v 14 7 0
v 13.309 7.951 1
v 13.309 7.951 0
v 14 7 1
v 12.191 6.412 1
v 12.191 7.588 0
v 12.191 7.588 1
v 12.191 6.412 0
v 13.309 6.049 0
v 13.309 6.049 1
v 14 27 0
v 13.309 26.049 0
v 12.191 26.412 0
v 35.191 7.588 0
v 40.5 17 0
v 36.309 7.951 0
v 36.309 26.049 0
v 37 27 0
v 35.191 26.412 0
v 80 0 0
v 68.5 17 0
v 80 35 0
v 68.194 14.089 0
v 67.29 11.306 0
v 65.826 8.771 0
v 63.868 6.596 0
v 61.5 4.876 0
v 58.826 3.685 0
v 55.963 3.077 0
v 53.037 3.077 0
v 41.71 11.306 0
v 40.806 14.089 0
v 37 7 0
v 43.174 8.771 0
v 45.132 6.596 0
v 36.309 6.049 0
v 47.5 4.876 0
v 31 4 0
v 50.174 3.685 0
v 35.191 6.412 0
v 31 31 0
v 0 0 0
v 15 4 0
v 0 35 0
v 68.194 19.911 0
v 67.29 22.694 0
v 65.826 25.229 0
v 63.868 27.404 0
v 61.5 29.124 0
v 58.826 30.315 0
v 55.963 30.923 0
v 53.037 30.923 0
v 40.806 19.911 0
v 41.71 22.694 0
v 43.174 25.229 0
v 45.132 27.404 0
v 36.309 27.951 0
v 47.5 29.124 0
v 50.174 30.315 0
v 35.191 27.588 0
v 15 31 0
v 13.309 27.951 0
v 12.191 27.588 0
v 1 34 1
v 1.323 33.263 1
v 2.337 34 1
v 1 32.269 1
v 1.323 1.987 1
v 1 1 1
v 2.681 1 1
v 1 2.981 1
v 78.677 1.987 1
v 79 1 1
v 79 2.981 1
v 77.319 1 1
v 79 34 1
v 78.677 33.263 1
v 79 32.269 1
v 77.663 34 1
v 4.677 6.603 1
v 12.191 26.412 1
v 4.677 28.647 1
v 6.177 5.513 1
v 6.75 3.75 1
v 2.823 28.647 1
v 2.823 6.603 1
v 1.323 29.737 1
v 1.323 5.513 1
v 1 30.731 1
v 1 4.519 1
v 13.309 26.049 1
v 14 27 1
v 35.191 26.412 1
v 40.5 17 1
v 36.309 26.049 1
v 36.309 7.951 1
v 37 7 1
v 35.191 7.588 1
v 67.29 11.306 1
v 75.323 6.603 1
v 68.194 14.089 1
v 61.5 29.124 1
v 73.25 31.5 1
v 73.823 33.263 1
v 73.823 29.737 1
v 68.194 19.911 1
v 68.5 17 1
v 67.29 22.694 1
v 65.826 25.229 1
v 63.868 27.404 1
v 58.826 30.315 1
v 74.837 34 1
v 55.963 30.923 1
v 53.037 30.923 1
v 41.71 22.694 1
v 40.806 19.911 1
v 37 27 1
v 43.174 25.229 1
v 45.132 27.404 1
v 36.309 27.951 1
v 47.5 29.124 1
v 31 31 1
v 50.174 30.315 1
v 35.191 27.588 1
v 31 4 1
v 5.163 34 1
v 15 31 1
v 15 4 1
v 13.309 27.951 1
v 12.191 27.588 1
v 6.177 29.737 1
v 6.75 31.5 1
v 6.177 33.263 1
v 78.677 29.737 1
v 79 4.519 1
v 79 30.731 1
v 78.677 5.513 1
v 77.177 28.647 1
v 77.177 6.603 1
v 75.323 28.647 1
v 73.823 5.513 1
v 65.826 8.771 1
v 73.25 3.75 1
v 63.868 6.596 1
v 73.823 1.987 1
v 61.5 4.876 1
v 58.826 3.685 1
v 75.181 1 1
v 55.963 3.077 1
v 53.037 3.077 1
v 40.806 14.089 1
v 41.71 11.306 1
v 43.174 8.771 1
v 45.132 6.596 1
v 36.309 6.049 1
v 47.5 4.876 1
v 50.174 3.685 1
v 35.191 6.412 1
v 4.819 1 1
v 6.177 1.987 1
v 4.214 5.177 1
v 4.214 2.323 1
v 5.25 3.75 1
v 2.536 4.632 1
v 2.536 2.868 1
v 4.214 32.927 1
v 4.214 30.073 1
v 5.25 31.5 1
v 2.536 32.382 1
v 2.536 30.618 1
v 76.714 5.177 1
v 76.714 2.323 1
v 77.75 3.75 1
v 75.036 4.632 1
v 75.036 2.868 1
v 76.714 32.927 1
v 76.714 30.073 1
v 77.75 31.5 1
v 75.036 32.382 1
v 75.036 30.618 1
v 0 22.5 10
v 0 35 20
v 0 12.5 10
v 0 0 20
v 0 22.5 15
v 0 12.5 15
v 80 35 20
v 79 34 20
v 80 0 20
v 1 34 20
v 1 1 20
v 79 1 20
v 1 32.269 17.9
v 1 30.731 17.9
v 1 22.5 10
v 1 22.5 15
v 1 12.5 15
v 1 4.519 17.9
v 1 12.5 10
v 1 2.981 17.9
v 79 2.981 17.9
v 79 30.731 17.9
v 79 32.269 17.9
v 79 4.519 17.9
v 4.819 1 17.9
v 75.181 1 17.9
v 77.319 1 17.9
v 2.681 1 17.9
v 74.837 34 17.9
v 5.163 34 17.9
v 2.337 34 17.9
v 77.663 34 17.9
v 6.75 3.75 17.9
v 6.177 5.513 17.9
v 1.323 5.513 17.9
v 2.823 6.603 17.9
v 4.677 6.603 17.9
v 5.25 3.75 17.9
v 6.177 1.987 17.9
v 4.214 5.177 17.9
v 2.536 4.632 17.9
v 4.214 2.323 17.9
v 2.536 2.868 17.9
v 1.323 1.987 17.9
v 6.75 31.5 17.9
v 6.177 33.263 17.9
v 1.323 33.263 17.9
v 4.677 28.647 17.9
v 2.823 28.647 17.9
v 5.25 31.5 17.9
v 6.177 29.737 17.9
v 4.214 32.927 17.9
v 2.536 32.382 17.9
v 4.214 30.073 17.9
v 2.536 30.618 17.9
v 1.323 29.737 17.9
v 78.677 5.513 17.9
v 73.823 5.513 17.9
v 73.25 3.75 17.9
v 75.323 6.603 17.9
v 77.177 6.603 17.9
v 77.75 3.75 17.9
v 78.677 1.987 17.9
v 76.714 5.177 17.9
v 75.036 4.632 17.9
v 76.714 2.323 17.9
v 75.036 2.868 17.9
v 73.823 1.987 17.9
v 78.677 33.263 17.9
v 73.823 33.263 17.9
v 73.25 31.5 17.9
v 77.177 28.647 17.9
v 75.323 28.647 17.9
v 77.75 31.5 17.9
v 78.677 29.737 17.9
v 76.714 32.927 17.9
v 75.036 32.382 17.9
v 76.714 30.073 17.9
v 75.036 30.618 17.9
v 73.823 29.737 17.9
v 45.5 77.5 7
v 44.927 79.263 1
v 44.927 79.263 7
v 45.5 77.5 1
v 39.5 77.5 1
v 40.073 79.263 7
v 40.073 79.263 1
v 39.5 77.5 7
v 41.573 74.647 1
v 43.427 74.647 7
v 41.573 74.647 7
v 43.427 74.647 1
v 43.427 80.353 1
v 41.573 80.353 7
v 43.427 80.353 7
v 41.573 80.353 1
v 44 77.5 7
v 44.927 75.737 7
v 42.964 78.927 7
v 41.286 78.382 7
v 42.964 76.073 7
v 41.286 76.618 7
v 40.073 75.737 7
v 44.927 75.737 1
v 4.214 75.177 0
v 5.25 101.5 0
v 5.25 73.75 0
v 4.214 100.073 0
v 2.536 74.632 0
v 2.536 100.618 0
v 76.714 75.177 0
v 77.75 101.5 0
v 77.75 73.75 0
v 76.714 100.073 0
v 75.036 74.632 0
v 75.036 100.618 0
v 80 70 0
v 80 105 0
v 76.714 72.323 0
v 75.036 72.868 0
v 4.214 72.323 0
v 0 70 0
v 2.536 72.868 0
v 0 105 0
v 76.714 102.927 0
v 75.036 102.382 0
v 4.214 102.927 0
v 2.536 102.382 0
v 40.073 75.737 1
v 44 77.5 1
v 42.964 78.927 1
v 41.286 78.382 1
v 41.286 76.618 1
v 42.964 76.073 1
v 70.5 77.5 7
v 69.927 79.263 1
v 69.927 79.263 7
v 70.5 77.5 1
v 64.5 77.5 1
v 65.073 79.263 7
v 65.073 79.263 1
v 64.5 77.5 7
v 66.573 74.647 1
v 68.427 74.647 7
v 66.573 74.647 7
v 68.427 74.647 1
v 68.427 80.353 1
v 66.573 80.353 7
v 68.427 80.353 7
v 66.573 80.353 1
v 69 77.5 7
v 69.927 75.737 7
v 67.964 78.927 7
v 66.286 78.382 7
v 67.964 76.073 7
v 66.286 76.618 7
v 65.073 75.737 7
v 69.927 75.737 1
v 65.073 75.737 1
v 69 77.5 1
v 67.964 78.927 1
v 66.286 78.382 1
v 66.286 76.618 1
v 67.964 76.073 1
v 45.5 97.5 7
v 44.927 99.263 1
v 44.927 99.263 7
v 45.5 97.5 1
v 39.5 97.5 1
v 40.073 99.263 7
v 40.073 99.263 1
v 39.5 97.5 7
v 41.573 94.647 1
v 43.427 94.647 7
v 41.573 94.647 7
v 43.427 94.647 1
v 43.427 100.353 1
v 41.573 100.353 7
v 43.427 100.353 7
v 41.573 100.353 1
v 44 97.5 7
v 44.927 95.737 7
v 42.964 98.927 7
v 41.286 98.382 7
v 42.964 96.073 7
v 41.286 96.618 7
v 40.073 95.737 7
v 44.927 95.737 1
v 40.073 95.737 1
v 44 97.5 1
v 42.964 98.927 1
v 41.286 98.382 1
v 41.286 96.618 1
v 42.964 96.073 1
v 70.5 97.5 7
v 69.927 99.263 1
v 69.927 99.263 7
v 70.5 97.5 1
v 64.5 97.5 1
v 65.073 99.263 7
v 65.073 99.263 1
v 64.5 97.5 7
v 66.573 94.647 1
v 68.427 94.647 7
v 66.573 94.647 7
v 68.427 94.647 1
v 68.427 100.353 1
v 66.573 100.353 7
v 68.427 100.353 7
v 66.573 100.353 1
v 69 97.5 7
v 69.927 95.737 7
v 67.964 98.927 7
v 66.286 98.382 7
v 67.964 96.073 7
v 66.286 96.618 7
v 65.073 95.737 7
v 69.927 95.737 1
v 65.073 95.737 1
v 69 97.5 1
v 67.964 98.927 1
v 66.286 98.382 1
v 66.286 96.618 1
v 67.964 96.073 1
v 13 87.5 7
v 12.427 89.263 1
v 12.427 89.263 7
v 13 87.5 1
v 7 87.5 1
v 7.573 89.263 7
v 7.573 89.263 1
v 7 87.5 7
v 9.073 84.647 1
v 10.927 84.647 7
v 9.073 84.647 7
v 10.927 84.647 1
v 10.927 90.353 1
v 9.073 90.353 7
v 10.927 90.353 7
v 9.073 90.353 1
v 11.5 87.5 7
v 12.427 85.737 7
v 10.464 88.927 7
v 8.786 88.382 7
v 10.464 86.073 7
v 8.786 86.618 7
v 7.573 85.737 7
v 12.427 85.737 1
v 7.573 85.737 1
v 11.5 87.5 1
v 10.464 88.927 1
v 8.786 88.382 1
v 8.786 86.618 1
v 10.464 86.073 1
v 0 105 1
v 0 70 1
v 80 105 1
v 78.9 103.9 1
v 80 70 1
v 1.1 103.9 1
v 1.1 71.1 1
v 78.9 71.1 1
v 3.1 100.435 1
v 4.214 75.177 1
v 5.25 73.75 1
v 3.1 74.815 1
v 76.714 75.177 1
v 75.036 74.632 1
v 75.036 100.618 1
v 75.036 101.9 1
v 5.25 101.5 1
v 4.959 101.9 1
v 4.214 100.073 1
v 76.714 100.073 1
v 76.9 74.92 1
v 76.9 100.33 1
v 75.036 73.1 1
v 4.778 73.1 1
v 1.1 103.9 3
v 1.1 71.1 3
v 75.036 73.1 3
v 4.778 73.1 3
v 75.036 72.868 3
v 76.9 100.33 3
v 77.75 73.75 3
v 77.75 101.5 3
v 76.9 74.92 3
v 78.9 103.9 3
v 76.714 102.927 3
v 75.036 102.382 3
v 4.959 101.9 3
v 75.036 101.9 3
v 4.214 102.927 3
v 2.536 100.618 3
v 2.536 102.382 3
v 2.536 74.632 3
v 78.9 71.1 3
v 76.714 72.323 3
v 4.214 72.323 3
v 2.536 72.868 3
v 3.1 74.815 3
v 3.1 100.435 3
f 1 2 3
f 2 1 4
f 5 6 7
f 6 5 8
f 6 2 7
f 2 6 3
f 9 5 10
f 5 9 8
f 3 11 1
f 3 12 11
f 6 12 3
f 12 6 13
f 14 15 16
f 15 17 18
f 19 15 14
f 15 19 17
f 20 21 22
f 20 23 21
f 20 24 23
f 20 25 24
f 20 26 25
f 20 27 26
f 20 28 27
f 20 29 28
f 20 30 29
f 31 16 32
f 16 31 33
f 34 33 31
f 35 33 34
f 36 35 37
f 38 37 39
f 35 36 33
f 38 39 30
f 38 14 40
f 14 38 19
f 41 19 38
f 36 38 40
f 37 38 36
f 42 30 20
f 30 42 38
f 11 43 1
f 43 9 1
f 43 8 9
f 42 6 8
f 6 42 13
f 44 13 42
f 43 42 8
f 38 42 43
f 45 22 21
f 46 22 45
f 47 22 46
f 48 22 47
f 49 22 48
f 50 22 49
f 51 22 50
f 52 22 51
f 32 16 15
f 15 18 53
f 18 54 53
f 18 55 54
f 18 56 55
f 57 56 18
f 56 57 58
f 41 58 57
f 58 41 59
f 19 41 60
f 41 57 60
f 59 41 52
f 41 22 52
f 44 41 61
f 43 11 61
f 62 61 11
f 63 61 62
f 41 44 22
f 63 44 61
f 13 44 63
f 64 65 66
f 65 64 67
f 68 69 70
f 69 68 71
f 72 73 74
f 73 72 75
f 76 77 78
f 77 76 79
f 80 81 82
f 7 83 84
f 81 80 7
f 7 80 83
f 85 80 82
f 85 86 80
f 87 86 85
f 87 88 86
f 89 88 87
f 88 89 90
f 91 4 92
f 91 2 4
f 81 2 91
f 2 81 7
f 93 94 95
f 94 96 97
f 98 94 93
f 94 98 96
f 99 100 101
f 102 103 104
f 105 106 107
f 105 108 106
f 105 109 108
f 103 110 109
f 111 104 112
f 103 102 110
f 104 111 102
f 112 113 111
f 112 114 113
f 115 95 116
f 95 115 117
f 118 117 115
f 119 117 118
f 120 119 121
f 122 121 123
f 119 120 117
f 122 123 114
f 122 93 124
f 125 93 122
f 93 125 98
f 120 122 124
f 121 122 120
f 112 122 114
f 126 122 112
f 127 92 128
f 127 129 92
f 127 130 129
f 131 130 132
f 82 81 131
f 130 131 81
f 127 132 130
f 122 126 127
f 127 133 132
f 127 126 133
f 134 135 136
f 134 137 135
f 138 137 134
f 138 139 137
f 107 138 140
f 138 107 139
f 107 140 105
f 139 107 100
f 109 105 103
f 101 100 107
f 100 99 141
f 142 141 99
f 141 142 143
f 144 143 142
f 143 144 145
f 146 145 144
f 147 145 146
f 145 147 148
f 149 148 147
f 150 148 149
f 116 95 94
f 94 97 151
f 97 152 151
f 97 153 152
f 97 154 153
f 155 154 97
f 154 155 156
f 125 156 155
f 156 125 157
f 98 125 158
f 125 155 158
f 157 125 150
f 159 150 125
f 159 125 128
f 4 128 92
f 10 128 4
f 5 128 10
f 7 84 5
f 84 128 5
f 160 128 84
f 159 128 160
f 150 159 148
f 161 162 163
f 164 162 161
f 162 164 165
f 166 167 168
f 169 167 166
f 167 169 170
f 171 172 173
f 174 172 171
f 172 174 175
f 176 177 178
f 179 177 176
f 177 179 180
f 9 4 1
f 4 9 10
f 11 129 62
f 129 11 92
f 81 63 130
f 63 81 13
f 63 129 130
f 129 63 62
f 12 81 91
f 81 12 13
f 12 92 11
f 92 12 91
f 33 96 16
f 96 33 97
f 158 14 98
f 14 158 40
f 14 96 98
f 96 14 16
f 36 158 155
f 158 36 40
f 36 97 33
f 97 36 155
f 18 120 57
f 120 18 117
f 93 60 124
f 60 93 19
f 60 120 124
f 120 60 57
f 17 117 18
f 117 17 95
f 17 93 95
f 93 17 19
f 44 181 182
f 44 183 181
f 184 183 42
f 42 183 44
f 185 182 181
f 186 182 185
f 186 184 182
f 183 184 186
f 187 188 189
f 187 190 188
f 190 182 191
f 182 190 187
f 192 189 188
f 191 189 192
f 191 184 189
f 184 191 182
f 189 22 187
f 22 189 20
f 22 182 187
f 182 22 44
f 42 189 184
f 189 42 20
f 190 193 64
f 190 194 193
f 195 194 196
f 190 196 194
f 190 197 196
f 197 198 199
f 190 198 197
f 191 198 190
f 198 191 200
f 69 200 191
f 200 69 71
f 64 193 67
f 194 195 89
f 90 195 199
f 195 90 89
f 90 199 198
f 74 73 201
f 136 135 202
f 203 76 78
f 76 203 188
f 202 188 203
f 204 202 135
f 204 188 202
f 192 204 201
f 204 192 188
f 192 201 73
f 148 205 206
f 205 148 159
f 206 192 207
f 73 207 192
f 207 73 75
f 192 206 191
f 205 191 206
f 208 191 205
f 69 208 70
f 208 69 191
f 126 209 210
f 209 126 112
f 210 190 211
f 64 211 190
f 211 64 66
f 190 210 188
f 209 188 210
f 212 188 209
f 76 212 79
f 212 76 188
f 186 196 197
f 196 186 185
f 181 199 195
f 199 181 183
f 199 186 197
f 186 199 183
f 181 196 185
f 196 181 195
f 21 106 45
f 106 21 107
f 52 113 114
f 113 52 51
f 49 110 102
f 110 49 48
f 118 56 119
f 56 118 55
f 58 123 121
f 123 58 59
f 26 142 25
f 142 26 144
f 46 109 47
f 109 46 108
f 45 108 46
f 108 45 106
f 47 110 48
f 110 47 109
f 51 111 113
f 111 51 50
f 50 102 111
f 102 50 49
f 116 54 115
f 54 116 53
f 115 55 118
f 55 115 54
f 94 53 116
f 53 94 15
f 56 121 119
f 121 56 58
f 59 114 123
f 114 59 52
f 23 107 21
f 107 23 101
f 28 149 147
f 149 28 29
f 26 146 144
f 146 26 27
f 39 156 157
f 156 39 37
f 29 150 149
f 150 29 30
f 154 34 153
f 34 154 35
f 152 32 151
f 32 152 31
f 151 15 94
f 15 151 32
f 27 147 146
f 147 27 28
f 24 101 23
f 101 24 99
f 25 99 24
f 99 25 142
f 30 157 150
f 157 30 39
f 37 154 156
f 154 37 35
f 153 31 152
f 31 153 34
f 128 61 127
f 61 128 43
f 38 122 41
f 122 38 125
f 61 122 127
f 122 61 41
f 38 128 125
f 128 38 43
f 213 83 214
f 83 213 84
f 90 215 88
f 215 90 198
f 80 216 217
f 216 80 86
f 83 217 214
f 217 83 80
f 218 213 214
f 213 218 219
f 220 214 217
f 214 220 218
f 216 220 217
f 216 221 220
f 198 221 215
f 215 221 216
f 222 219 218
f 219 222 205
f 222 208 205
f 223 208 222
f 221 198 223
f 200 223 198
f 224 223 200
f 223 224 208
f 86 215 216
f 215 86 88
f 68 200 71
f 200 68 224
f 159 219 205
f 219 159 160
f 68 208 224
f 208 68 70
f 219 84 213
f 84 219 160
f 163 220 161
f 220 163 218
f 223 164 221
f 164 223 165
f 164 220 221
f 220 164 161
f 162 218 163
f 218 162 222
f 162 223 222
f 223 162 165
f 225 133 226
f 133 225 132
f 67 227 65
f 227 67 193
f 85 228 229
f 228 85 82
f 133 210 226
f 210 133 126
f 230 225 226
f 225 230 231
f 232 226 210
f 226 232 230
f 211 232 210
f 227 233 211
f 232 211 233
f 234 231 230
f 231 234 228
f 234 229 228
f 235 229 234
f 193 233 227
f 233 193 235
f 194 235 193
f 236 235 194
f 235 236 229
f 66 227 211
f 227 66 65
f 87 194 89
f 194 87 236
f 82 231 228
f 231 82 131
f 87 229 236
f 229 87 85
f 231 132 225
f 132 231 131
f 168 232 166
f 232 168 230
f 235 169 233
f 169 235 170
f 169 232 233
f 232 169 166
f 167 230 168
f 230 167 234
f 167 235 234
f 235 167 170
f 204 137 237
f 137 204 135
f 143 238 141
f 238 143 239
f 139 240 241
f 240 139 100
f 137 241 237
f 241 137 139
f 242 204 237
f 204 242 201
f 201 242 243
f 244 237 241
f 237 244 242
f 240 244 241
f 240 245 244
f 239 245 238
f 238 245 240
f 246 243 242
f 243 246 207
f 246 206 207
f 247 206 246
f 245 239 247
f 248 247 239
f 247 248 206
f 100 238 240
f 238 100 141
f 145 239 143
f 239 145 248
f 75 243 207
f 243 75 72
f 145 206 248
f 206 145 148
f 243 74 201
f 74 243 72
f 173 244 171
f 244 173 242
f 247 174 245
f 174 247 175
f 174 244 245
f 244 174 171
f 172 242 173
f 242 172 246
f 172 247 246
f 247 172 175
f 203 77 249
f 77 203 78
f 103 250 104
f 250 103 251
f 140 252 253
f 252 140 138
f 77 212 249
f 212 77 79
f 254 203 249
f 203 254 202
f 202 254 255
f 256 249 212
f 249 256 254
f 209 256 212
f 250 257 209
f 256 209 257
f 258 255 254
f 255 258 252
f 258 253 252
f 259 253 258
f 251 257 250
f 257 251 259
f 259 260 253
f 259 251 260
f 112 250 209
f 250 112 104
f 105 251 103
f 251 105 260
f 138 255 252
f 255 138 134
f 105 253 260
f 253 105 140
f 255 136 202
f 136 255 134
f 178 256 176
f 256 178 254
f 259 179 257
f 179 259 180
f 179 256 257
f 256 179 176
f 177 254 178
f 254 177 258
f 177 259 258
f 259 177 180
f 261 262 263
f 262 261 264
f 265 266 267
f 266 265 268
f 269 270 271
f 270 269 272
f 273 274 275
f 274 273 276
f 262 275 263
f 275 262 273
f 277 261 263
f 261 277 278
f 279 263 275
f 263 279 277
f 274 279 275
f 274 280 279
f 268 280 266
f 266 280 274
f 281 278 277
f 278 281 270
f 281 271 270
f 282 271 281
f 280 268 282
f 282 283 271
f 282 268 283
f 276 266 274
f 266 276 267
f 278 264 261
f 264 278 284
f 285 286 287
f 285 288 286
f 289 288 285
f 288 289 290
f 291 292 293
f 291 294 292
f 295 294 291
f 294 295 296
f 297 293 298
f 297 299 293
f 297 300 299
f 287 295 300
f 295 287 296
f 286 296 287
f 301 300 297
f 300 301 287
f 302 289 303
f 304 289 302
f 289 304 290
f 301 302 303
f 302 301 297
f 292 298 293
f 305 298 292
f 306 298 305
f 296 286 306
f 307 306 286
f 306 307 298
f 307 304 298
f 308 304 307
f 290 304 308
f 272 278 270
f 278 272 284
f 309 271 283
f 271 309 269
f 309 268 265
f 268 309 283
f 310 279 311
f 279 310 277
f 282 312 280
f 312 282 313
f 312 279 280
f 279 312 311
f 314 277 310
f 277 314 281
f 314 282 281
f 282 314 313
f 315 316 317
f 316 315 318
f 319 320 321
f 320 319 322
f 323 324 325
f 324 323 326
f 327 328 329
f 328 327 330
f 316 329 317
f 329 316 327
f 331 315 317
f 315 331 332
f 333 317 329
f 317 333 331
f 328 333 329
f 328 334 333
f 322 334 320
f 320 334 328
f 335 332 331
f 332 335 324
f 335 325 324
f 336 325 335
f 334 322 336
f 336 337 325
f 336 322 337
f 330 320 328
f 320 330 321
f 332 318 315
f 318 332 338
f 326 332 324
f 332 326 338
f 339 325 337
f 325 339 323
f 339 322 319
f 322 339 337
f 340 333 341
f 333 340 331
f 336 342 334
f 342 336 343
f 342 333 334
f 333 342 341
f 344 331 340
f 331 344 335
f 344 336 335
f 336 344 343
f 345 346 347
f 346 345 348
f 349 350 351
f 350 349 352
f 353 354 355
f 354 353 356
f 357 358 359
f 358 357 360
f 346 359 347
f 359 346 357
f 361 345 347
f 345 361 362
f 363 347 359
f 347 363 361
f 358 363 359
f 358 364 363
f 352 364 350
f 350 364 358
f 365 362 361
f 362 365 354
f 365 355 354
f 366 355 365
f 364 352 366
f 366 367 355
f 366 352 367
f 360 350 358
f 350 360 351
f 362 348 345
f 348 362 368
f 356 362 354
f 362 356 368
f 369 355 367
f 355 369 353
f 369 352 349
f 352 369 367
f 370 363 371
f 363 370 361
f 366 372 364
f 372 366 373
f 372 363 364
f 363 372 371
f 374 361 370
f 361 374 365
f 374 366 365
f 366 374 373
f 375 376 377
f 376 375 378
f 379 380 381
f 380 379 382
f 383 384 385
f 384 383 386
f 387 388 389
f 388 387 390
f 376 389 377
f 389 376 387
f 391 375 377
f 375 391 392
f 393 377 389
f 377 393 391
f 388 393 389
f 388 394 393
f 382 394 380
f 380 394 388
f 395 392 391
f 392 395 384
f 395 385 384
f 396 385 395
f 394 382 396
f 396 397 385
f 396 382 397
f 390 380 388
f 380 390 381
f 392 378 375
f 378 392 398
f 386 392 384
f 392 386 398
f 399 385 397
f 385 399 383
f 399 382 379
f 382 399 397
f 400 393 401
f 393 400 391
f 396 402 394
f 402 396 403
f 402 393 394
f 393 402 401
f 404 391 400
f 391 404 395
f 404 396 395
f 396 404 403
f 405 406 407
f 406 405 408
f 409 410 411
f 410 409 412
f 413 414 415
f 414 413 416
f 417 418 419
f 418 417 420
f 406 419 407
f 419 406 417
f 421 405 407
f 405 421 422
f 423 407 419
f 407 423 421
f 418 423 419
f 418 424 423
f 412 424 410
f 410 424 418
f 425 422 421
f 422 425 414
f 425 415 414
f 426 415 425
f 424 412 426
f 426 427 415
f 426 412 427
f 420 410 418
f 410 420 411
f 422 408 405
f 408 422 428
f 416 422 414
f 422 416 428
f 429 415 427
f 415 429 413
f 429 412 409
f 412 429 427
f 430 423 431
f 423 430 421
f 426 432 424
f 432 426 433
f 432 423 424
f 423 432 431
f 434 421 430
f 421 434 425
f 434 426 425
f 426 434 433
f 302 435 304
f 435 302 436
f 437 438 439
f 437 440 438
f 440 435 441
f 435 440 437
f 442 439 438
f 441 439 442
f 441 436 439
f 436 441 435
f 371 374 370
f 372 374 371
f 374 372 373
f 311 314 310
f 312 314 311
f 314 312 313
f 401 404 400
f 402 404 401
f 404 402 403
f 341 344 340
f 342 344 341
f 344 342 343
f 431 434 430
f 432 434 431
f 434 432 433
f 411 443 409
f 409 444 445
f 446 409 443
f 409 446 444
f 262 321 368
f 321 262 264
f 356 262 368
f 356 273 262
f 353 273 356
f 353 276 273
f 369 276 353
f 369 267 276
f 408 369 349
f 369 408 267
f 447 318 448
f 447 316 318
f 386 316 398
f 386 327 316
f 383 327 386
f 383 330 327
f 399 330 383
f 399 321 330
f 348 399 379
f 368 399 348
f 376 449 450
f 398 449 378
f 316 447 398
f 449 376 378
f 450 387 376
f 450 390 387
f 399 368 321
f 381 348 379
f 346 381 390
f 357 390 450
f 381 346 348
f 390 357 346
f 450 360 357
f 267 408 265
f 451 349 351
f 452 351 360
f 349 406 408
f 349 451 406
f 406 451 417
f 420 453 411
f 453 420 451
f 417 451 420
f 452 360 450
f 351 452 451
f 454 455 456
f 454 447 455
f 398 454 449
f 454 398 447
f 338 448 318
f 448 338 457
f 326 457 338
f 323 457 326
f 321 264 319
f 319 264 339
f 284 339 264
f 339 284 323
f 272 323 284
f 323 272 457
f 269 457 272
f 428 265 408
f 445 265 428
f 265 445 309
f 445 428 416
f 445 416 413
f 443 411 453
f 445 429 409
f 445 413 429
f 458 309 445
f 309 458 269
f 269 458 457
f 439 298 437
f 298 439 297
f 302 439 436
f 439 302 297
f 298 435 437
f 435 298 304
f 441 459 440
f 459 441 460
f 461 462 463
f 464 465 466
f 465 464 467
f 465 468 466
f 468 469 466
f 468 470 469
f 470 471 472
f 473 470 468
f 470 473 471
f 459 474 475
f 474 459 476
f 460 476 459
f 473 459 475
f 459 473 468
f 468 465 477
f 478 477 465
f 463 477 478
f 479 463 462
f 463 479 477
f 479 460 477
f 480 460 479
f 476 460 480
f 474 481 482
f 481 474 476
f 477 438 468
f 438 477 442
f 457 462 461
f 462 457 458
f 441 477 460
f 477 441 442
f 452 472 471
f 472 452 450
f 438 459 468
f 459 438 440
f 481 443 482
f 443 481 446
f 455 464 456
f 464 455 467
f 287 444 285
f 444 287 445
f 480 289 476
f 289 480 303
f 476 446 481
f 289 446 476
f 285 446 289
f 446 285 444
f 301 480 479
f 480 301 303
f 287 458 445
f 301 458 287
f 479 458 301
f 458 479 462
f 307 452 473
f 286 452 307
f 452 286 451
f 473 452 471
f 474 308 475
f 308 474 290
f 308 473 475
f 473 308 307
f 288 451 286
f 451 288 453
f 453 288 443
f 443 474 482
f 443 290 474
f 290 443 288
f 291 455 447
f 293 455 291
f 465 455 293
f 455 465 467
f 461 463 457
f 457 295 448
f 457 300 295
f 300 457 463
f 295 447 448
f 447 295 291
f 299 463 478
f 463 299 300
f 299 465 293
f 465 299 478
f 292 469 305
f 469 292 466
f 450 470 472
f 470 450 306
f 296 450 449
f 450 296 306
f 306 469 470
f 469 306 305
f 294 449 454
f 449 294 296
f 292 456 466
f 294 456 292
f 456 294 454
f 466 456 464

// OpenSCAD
length = 80;            // box lenght
width = 35;             // box width
height = 20;            // box, height

joy = 28;               // joystick hole diameter
joy_offset = 15;         // x offset for joysitck

so_d = 6;               // stand off diameter

disp_offset = 15;        // display offset from end
disp_w = 27;            // display width
disp_l =16;             // display length

disp_hdist = 20;        // display horizontal mounting hole distance
disp_vdist =  23;       // display vertial mount hole distance

module standoff(sh=6, sd=6)
{
    translate([0,0,-1])
    {
        difference() 
        {
            // standoff
            
            cylinder(h=sh,d=sd, center= false);
            
            // screw hole
            
            cylinder(h=sh,d=sd/2, center= false);
        }
    }
}

module base() 
{
    // four standoffs for joystick (25x20mm) 
    
    translate([0,0,0])      standoff(sh=7, sd=so_d);
    translate([25,0,0])     standoff(sh=7, sd=so_d);
    translate([0,20,0])     standoff(sh=7, sd=so_d);
    translate([25,20,0])    standoff(sh=7, sd=so_d);
}    

module wire()
{
    cube([2,10,5]);
}

module box()
{
    difference()
    {
        // outer shell
        
        cube([length, width, height]);
        
        // inner wall
        
        translate([1,1,1])
            cube([length-2, width-2, height]);
        
        // wire hole
        
        translate([0,width/2-5, 10])
            wire();

        // Joystick hole
        
        translate([length/2+joy_offset-0.5,width/2-0.5,0])
            cylinder(h=2,d=joy, center=false);
        
        // display hole
        
        translate([disp_offset ,width/2-disp_w/2,0])    cube([disp_l,disp_w,1]);
        
        // display mounting holes
        
        translate([disp_offset ,width/2-disp_w/2,0])
        {
            translate([-2,3,0])     cylinder(h=1,d=2, center= false);
            translate([-2,23,0])    cylinder(h=1,d=2, center= false);
            translate([-2+23,3,0])  cylinder(h=1,d=2, center= false);
            translate([-2+23,23,0]) cylinder(h=1,d=2, center= false);
        }
    }
    
    // corner standoffs
    
    translate([5-1.25,5-1.25,1]) standoff(sh=height-2.1, sd=so_d);
    translate([5-1.25,30+1.5,1]) standoff(sh=height-2.1, sd=so_d);
    
    translate([length-3.75,5-1.25,1]) standoff(sh=height-2.1, sd=so_d);
    translate([length-3.75,30+1.5,1]) standoff(sh=height-2.1, sd=so_d);
    
    // proto board standoff
    

}

module bottom()
{
    difference()
    {
        // bottom
        
        union() 
        {
            cube([length, width, 1]);
        
            // joystick mounting base

            translate([length/2-25/2+joy_offset, width/2-20/2,1]) 
                base();
            
            // protoboard standoff
            
            translate([10,width/2,1]) standoff(7, sd=so_d);

    
            // lengthwise bottom ridges
    
            translate([1.1,1.1,1])       cube([length-2.2, 2, 2]);
            translate([1.1,width-3.1,1]) cube([length-2.2, 2, 2]);
    
            // horizontal botton ridges
    
            translate([1.1,1.1,1])         cube([2, width-2.2, 2]);
            translate([length-3.1,1.1,1])  cube([2, width-2.2, 2]);
        }  
        
        // standoff screw holes
        
        translate([5-1.25,5-1.25,0])        cylinder(h=5,d=so_d/2, center= false);
        translate([5-1.25,30+1.5,0])        cylinder(h=5,d=so_d/2, center= false);
        translate([length-3.75,5-1.25,0])   cylinder(h=5,d=so_d/2, center= false);
        translate([length-3.75,30+1.5,0])   cylinder(h=5,d=so_d/2, center= false);
    }

   
}

box();
translate([0, width*2, 0])   bottom();
